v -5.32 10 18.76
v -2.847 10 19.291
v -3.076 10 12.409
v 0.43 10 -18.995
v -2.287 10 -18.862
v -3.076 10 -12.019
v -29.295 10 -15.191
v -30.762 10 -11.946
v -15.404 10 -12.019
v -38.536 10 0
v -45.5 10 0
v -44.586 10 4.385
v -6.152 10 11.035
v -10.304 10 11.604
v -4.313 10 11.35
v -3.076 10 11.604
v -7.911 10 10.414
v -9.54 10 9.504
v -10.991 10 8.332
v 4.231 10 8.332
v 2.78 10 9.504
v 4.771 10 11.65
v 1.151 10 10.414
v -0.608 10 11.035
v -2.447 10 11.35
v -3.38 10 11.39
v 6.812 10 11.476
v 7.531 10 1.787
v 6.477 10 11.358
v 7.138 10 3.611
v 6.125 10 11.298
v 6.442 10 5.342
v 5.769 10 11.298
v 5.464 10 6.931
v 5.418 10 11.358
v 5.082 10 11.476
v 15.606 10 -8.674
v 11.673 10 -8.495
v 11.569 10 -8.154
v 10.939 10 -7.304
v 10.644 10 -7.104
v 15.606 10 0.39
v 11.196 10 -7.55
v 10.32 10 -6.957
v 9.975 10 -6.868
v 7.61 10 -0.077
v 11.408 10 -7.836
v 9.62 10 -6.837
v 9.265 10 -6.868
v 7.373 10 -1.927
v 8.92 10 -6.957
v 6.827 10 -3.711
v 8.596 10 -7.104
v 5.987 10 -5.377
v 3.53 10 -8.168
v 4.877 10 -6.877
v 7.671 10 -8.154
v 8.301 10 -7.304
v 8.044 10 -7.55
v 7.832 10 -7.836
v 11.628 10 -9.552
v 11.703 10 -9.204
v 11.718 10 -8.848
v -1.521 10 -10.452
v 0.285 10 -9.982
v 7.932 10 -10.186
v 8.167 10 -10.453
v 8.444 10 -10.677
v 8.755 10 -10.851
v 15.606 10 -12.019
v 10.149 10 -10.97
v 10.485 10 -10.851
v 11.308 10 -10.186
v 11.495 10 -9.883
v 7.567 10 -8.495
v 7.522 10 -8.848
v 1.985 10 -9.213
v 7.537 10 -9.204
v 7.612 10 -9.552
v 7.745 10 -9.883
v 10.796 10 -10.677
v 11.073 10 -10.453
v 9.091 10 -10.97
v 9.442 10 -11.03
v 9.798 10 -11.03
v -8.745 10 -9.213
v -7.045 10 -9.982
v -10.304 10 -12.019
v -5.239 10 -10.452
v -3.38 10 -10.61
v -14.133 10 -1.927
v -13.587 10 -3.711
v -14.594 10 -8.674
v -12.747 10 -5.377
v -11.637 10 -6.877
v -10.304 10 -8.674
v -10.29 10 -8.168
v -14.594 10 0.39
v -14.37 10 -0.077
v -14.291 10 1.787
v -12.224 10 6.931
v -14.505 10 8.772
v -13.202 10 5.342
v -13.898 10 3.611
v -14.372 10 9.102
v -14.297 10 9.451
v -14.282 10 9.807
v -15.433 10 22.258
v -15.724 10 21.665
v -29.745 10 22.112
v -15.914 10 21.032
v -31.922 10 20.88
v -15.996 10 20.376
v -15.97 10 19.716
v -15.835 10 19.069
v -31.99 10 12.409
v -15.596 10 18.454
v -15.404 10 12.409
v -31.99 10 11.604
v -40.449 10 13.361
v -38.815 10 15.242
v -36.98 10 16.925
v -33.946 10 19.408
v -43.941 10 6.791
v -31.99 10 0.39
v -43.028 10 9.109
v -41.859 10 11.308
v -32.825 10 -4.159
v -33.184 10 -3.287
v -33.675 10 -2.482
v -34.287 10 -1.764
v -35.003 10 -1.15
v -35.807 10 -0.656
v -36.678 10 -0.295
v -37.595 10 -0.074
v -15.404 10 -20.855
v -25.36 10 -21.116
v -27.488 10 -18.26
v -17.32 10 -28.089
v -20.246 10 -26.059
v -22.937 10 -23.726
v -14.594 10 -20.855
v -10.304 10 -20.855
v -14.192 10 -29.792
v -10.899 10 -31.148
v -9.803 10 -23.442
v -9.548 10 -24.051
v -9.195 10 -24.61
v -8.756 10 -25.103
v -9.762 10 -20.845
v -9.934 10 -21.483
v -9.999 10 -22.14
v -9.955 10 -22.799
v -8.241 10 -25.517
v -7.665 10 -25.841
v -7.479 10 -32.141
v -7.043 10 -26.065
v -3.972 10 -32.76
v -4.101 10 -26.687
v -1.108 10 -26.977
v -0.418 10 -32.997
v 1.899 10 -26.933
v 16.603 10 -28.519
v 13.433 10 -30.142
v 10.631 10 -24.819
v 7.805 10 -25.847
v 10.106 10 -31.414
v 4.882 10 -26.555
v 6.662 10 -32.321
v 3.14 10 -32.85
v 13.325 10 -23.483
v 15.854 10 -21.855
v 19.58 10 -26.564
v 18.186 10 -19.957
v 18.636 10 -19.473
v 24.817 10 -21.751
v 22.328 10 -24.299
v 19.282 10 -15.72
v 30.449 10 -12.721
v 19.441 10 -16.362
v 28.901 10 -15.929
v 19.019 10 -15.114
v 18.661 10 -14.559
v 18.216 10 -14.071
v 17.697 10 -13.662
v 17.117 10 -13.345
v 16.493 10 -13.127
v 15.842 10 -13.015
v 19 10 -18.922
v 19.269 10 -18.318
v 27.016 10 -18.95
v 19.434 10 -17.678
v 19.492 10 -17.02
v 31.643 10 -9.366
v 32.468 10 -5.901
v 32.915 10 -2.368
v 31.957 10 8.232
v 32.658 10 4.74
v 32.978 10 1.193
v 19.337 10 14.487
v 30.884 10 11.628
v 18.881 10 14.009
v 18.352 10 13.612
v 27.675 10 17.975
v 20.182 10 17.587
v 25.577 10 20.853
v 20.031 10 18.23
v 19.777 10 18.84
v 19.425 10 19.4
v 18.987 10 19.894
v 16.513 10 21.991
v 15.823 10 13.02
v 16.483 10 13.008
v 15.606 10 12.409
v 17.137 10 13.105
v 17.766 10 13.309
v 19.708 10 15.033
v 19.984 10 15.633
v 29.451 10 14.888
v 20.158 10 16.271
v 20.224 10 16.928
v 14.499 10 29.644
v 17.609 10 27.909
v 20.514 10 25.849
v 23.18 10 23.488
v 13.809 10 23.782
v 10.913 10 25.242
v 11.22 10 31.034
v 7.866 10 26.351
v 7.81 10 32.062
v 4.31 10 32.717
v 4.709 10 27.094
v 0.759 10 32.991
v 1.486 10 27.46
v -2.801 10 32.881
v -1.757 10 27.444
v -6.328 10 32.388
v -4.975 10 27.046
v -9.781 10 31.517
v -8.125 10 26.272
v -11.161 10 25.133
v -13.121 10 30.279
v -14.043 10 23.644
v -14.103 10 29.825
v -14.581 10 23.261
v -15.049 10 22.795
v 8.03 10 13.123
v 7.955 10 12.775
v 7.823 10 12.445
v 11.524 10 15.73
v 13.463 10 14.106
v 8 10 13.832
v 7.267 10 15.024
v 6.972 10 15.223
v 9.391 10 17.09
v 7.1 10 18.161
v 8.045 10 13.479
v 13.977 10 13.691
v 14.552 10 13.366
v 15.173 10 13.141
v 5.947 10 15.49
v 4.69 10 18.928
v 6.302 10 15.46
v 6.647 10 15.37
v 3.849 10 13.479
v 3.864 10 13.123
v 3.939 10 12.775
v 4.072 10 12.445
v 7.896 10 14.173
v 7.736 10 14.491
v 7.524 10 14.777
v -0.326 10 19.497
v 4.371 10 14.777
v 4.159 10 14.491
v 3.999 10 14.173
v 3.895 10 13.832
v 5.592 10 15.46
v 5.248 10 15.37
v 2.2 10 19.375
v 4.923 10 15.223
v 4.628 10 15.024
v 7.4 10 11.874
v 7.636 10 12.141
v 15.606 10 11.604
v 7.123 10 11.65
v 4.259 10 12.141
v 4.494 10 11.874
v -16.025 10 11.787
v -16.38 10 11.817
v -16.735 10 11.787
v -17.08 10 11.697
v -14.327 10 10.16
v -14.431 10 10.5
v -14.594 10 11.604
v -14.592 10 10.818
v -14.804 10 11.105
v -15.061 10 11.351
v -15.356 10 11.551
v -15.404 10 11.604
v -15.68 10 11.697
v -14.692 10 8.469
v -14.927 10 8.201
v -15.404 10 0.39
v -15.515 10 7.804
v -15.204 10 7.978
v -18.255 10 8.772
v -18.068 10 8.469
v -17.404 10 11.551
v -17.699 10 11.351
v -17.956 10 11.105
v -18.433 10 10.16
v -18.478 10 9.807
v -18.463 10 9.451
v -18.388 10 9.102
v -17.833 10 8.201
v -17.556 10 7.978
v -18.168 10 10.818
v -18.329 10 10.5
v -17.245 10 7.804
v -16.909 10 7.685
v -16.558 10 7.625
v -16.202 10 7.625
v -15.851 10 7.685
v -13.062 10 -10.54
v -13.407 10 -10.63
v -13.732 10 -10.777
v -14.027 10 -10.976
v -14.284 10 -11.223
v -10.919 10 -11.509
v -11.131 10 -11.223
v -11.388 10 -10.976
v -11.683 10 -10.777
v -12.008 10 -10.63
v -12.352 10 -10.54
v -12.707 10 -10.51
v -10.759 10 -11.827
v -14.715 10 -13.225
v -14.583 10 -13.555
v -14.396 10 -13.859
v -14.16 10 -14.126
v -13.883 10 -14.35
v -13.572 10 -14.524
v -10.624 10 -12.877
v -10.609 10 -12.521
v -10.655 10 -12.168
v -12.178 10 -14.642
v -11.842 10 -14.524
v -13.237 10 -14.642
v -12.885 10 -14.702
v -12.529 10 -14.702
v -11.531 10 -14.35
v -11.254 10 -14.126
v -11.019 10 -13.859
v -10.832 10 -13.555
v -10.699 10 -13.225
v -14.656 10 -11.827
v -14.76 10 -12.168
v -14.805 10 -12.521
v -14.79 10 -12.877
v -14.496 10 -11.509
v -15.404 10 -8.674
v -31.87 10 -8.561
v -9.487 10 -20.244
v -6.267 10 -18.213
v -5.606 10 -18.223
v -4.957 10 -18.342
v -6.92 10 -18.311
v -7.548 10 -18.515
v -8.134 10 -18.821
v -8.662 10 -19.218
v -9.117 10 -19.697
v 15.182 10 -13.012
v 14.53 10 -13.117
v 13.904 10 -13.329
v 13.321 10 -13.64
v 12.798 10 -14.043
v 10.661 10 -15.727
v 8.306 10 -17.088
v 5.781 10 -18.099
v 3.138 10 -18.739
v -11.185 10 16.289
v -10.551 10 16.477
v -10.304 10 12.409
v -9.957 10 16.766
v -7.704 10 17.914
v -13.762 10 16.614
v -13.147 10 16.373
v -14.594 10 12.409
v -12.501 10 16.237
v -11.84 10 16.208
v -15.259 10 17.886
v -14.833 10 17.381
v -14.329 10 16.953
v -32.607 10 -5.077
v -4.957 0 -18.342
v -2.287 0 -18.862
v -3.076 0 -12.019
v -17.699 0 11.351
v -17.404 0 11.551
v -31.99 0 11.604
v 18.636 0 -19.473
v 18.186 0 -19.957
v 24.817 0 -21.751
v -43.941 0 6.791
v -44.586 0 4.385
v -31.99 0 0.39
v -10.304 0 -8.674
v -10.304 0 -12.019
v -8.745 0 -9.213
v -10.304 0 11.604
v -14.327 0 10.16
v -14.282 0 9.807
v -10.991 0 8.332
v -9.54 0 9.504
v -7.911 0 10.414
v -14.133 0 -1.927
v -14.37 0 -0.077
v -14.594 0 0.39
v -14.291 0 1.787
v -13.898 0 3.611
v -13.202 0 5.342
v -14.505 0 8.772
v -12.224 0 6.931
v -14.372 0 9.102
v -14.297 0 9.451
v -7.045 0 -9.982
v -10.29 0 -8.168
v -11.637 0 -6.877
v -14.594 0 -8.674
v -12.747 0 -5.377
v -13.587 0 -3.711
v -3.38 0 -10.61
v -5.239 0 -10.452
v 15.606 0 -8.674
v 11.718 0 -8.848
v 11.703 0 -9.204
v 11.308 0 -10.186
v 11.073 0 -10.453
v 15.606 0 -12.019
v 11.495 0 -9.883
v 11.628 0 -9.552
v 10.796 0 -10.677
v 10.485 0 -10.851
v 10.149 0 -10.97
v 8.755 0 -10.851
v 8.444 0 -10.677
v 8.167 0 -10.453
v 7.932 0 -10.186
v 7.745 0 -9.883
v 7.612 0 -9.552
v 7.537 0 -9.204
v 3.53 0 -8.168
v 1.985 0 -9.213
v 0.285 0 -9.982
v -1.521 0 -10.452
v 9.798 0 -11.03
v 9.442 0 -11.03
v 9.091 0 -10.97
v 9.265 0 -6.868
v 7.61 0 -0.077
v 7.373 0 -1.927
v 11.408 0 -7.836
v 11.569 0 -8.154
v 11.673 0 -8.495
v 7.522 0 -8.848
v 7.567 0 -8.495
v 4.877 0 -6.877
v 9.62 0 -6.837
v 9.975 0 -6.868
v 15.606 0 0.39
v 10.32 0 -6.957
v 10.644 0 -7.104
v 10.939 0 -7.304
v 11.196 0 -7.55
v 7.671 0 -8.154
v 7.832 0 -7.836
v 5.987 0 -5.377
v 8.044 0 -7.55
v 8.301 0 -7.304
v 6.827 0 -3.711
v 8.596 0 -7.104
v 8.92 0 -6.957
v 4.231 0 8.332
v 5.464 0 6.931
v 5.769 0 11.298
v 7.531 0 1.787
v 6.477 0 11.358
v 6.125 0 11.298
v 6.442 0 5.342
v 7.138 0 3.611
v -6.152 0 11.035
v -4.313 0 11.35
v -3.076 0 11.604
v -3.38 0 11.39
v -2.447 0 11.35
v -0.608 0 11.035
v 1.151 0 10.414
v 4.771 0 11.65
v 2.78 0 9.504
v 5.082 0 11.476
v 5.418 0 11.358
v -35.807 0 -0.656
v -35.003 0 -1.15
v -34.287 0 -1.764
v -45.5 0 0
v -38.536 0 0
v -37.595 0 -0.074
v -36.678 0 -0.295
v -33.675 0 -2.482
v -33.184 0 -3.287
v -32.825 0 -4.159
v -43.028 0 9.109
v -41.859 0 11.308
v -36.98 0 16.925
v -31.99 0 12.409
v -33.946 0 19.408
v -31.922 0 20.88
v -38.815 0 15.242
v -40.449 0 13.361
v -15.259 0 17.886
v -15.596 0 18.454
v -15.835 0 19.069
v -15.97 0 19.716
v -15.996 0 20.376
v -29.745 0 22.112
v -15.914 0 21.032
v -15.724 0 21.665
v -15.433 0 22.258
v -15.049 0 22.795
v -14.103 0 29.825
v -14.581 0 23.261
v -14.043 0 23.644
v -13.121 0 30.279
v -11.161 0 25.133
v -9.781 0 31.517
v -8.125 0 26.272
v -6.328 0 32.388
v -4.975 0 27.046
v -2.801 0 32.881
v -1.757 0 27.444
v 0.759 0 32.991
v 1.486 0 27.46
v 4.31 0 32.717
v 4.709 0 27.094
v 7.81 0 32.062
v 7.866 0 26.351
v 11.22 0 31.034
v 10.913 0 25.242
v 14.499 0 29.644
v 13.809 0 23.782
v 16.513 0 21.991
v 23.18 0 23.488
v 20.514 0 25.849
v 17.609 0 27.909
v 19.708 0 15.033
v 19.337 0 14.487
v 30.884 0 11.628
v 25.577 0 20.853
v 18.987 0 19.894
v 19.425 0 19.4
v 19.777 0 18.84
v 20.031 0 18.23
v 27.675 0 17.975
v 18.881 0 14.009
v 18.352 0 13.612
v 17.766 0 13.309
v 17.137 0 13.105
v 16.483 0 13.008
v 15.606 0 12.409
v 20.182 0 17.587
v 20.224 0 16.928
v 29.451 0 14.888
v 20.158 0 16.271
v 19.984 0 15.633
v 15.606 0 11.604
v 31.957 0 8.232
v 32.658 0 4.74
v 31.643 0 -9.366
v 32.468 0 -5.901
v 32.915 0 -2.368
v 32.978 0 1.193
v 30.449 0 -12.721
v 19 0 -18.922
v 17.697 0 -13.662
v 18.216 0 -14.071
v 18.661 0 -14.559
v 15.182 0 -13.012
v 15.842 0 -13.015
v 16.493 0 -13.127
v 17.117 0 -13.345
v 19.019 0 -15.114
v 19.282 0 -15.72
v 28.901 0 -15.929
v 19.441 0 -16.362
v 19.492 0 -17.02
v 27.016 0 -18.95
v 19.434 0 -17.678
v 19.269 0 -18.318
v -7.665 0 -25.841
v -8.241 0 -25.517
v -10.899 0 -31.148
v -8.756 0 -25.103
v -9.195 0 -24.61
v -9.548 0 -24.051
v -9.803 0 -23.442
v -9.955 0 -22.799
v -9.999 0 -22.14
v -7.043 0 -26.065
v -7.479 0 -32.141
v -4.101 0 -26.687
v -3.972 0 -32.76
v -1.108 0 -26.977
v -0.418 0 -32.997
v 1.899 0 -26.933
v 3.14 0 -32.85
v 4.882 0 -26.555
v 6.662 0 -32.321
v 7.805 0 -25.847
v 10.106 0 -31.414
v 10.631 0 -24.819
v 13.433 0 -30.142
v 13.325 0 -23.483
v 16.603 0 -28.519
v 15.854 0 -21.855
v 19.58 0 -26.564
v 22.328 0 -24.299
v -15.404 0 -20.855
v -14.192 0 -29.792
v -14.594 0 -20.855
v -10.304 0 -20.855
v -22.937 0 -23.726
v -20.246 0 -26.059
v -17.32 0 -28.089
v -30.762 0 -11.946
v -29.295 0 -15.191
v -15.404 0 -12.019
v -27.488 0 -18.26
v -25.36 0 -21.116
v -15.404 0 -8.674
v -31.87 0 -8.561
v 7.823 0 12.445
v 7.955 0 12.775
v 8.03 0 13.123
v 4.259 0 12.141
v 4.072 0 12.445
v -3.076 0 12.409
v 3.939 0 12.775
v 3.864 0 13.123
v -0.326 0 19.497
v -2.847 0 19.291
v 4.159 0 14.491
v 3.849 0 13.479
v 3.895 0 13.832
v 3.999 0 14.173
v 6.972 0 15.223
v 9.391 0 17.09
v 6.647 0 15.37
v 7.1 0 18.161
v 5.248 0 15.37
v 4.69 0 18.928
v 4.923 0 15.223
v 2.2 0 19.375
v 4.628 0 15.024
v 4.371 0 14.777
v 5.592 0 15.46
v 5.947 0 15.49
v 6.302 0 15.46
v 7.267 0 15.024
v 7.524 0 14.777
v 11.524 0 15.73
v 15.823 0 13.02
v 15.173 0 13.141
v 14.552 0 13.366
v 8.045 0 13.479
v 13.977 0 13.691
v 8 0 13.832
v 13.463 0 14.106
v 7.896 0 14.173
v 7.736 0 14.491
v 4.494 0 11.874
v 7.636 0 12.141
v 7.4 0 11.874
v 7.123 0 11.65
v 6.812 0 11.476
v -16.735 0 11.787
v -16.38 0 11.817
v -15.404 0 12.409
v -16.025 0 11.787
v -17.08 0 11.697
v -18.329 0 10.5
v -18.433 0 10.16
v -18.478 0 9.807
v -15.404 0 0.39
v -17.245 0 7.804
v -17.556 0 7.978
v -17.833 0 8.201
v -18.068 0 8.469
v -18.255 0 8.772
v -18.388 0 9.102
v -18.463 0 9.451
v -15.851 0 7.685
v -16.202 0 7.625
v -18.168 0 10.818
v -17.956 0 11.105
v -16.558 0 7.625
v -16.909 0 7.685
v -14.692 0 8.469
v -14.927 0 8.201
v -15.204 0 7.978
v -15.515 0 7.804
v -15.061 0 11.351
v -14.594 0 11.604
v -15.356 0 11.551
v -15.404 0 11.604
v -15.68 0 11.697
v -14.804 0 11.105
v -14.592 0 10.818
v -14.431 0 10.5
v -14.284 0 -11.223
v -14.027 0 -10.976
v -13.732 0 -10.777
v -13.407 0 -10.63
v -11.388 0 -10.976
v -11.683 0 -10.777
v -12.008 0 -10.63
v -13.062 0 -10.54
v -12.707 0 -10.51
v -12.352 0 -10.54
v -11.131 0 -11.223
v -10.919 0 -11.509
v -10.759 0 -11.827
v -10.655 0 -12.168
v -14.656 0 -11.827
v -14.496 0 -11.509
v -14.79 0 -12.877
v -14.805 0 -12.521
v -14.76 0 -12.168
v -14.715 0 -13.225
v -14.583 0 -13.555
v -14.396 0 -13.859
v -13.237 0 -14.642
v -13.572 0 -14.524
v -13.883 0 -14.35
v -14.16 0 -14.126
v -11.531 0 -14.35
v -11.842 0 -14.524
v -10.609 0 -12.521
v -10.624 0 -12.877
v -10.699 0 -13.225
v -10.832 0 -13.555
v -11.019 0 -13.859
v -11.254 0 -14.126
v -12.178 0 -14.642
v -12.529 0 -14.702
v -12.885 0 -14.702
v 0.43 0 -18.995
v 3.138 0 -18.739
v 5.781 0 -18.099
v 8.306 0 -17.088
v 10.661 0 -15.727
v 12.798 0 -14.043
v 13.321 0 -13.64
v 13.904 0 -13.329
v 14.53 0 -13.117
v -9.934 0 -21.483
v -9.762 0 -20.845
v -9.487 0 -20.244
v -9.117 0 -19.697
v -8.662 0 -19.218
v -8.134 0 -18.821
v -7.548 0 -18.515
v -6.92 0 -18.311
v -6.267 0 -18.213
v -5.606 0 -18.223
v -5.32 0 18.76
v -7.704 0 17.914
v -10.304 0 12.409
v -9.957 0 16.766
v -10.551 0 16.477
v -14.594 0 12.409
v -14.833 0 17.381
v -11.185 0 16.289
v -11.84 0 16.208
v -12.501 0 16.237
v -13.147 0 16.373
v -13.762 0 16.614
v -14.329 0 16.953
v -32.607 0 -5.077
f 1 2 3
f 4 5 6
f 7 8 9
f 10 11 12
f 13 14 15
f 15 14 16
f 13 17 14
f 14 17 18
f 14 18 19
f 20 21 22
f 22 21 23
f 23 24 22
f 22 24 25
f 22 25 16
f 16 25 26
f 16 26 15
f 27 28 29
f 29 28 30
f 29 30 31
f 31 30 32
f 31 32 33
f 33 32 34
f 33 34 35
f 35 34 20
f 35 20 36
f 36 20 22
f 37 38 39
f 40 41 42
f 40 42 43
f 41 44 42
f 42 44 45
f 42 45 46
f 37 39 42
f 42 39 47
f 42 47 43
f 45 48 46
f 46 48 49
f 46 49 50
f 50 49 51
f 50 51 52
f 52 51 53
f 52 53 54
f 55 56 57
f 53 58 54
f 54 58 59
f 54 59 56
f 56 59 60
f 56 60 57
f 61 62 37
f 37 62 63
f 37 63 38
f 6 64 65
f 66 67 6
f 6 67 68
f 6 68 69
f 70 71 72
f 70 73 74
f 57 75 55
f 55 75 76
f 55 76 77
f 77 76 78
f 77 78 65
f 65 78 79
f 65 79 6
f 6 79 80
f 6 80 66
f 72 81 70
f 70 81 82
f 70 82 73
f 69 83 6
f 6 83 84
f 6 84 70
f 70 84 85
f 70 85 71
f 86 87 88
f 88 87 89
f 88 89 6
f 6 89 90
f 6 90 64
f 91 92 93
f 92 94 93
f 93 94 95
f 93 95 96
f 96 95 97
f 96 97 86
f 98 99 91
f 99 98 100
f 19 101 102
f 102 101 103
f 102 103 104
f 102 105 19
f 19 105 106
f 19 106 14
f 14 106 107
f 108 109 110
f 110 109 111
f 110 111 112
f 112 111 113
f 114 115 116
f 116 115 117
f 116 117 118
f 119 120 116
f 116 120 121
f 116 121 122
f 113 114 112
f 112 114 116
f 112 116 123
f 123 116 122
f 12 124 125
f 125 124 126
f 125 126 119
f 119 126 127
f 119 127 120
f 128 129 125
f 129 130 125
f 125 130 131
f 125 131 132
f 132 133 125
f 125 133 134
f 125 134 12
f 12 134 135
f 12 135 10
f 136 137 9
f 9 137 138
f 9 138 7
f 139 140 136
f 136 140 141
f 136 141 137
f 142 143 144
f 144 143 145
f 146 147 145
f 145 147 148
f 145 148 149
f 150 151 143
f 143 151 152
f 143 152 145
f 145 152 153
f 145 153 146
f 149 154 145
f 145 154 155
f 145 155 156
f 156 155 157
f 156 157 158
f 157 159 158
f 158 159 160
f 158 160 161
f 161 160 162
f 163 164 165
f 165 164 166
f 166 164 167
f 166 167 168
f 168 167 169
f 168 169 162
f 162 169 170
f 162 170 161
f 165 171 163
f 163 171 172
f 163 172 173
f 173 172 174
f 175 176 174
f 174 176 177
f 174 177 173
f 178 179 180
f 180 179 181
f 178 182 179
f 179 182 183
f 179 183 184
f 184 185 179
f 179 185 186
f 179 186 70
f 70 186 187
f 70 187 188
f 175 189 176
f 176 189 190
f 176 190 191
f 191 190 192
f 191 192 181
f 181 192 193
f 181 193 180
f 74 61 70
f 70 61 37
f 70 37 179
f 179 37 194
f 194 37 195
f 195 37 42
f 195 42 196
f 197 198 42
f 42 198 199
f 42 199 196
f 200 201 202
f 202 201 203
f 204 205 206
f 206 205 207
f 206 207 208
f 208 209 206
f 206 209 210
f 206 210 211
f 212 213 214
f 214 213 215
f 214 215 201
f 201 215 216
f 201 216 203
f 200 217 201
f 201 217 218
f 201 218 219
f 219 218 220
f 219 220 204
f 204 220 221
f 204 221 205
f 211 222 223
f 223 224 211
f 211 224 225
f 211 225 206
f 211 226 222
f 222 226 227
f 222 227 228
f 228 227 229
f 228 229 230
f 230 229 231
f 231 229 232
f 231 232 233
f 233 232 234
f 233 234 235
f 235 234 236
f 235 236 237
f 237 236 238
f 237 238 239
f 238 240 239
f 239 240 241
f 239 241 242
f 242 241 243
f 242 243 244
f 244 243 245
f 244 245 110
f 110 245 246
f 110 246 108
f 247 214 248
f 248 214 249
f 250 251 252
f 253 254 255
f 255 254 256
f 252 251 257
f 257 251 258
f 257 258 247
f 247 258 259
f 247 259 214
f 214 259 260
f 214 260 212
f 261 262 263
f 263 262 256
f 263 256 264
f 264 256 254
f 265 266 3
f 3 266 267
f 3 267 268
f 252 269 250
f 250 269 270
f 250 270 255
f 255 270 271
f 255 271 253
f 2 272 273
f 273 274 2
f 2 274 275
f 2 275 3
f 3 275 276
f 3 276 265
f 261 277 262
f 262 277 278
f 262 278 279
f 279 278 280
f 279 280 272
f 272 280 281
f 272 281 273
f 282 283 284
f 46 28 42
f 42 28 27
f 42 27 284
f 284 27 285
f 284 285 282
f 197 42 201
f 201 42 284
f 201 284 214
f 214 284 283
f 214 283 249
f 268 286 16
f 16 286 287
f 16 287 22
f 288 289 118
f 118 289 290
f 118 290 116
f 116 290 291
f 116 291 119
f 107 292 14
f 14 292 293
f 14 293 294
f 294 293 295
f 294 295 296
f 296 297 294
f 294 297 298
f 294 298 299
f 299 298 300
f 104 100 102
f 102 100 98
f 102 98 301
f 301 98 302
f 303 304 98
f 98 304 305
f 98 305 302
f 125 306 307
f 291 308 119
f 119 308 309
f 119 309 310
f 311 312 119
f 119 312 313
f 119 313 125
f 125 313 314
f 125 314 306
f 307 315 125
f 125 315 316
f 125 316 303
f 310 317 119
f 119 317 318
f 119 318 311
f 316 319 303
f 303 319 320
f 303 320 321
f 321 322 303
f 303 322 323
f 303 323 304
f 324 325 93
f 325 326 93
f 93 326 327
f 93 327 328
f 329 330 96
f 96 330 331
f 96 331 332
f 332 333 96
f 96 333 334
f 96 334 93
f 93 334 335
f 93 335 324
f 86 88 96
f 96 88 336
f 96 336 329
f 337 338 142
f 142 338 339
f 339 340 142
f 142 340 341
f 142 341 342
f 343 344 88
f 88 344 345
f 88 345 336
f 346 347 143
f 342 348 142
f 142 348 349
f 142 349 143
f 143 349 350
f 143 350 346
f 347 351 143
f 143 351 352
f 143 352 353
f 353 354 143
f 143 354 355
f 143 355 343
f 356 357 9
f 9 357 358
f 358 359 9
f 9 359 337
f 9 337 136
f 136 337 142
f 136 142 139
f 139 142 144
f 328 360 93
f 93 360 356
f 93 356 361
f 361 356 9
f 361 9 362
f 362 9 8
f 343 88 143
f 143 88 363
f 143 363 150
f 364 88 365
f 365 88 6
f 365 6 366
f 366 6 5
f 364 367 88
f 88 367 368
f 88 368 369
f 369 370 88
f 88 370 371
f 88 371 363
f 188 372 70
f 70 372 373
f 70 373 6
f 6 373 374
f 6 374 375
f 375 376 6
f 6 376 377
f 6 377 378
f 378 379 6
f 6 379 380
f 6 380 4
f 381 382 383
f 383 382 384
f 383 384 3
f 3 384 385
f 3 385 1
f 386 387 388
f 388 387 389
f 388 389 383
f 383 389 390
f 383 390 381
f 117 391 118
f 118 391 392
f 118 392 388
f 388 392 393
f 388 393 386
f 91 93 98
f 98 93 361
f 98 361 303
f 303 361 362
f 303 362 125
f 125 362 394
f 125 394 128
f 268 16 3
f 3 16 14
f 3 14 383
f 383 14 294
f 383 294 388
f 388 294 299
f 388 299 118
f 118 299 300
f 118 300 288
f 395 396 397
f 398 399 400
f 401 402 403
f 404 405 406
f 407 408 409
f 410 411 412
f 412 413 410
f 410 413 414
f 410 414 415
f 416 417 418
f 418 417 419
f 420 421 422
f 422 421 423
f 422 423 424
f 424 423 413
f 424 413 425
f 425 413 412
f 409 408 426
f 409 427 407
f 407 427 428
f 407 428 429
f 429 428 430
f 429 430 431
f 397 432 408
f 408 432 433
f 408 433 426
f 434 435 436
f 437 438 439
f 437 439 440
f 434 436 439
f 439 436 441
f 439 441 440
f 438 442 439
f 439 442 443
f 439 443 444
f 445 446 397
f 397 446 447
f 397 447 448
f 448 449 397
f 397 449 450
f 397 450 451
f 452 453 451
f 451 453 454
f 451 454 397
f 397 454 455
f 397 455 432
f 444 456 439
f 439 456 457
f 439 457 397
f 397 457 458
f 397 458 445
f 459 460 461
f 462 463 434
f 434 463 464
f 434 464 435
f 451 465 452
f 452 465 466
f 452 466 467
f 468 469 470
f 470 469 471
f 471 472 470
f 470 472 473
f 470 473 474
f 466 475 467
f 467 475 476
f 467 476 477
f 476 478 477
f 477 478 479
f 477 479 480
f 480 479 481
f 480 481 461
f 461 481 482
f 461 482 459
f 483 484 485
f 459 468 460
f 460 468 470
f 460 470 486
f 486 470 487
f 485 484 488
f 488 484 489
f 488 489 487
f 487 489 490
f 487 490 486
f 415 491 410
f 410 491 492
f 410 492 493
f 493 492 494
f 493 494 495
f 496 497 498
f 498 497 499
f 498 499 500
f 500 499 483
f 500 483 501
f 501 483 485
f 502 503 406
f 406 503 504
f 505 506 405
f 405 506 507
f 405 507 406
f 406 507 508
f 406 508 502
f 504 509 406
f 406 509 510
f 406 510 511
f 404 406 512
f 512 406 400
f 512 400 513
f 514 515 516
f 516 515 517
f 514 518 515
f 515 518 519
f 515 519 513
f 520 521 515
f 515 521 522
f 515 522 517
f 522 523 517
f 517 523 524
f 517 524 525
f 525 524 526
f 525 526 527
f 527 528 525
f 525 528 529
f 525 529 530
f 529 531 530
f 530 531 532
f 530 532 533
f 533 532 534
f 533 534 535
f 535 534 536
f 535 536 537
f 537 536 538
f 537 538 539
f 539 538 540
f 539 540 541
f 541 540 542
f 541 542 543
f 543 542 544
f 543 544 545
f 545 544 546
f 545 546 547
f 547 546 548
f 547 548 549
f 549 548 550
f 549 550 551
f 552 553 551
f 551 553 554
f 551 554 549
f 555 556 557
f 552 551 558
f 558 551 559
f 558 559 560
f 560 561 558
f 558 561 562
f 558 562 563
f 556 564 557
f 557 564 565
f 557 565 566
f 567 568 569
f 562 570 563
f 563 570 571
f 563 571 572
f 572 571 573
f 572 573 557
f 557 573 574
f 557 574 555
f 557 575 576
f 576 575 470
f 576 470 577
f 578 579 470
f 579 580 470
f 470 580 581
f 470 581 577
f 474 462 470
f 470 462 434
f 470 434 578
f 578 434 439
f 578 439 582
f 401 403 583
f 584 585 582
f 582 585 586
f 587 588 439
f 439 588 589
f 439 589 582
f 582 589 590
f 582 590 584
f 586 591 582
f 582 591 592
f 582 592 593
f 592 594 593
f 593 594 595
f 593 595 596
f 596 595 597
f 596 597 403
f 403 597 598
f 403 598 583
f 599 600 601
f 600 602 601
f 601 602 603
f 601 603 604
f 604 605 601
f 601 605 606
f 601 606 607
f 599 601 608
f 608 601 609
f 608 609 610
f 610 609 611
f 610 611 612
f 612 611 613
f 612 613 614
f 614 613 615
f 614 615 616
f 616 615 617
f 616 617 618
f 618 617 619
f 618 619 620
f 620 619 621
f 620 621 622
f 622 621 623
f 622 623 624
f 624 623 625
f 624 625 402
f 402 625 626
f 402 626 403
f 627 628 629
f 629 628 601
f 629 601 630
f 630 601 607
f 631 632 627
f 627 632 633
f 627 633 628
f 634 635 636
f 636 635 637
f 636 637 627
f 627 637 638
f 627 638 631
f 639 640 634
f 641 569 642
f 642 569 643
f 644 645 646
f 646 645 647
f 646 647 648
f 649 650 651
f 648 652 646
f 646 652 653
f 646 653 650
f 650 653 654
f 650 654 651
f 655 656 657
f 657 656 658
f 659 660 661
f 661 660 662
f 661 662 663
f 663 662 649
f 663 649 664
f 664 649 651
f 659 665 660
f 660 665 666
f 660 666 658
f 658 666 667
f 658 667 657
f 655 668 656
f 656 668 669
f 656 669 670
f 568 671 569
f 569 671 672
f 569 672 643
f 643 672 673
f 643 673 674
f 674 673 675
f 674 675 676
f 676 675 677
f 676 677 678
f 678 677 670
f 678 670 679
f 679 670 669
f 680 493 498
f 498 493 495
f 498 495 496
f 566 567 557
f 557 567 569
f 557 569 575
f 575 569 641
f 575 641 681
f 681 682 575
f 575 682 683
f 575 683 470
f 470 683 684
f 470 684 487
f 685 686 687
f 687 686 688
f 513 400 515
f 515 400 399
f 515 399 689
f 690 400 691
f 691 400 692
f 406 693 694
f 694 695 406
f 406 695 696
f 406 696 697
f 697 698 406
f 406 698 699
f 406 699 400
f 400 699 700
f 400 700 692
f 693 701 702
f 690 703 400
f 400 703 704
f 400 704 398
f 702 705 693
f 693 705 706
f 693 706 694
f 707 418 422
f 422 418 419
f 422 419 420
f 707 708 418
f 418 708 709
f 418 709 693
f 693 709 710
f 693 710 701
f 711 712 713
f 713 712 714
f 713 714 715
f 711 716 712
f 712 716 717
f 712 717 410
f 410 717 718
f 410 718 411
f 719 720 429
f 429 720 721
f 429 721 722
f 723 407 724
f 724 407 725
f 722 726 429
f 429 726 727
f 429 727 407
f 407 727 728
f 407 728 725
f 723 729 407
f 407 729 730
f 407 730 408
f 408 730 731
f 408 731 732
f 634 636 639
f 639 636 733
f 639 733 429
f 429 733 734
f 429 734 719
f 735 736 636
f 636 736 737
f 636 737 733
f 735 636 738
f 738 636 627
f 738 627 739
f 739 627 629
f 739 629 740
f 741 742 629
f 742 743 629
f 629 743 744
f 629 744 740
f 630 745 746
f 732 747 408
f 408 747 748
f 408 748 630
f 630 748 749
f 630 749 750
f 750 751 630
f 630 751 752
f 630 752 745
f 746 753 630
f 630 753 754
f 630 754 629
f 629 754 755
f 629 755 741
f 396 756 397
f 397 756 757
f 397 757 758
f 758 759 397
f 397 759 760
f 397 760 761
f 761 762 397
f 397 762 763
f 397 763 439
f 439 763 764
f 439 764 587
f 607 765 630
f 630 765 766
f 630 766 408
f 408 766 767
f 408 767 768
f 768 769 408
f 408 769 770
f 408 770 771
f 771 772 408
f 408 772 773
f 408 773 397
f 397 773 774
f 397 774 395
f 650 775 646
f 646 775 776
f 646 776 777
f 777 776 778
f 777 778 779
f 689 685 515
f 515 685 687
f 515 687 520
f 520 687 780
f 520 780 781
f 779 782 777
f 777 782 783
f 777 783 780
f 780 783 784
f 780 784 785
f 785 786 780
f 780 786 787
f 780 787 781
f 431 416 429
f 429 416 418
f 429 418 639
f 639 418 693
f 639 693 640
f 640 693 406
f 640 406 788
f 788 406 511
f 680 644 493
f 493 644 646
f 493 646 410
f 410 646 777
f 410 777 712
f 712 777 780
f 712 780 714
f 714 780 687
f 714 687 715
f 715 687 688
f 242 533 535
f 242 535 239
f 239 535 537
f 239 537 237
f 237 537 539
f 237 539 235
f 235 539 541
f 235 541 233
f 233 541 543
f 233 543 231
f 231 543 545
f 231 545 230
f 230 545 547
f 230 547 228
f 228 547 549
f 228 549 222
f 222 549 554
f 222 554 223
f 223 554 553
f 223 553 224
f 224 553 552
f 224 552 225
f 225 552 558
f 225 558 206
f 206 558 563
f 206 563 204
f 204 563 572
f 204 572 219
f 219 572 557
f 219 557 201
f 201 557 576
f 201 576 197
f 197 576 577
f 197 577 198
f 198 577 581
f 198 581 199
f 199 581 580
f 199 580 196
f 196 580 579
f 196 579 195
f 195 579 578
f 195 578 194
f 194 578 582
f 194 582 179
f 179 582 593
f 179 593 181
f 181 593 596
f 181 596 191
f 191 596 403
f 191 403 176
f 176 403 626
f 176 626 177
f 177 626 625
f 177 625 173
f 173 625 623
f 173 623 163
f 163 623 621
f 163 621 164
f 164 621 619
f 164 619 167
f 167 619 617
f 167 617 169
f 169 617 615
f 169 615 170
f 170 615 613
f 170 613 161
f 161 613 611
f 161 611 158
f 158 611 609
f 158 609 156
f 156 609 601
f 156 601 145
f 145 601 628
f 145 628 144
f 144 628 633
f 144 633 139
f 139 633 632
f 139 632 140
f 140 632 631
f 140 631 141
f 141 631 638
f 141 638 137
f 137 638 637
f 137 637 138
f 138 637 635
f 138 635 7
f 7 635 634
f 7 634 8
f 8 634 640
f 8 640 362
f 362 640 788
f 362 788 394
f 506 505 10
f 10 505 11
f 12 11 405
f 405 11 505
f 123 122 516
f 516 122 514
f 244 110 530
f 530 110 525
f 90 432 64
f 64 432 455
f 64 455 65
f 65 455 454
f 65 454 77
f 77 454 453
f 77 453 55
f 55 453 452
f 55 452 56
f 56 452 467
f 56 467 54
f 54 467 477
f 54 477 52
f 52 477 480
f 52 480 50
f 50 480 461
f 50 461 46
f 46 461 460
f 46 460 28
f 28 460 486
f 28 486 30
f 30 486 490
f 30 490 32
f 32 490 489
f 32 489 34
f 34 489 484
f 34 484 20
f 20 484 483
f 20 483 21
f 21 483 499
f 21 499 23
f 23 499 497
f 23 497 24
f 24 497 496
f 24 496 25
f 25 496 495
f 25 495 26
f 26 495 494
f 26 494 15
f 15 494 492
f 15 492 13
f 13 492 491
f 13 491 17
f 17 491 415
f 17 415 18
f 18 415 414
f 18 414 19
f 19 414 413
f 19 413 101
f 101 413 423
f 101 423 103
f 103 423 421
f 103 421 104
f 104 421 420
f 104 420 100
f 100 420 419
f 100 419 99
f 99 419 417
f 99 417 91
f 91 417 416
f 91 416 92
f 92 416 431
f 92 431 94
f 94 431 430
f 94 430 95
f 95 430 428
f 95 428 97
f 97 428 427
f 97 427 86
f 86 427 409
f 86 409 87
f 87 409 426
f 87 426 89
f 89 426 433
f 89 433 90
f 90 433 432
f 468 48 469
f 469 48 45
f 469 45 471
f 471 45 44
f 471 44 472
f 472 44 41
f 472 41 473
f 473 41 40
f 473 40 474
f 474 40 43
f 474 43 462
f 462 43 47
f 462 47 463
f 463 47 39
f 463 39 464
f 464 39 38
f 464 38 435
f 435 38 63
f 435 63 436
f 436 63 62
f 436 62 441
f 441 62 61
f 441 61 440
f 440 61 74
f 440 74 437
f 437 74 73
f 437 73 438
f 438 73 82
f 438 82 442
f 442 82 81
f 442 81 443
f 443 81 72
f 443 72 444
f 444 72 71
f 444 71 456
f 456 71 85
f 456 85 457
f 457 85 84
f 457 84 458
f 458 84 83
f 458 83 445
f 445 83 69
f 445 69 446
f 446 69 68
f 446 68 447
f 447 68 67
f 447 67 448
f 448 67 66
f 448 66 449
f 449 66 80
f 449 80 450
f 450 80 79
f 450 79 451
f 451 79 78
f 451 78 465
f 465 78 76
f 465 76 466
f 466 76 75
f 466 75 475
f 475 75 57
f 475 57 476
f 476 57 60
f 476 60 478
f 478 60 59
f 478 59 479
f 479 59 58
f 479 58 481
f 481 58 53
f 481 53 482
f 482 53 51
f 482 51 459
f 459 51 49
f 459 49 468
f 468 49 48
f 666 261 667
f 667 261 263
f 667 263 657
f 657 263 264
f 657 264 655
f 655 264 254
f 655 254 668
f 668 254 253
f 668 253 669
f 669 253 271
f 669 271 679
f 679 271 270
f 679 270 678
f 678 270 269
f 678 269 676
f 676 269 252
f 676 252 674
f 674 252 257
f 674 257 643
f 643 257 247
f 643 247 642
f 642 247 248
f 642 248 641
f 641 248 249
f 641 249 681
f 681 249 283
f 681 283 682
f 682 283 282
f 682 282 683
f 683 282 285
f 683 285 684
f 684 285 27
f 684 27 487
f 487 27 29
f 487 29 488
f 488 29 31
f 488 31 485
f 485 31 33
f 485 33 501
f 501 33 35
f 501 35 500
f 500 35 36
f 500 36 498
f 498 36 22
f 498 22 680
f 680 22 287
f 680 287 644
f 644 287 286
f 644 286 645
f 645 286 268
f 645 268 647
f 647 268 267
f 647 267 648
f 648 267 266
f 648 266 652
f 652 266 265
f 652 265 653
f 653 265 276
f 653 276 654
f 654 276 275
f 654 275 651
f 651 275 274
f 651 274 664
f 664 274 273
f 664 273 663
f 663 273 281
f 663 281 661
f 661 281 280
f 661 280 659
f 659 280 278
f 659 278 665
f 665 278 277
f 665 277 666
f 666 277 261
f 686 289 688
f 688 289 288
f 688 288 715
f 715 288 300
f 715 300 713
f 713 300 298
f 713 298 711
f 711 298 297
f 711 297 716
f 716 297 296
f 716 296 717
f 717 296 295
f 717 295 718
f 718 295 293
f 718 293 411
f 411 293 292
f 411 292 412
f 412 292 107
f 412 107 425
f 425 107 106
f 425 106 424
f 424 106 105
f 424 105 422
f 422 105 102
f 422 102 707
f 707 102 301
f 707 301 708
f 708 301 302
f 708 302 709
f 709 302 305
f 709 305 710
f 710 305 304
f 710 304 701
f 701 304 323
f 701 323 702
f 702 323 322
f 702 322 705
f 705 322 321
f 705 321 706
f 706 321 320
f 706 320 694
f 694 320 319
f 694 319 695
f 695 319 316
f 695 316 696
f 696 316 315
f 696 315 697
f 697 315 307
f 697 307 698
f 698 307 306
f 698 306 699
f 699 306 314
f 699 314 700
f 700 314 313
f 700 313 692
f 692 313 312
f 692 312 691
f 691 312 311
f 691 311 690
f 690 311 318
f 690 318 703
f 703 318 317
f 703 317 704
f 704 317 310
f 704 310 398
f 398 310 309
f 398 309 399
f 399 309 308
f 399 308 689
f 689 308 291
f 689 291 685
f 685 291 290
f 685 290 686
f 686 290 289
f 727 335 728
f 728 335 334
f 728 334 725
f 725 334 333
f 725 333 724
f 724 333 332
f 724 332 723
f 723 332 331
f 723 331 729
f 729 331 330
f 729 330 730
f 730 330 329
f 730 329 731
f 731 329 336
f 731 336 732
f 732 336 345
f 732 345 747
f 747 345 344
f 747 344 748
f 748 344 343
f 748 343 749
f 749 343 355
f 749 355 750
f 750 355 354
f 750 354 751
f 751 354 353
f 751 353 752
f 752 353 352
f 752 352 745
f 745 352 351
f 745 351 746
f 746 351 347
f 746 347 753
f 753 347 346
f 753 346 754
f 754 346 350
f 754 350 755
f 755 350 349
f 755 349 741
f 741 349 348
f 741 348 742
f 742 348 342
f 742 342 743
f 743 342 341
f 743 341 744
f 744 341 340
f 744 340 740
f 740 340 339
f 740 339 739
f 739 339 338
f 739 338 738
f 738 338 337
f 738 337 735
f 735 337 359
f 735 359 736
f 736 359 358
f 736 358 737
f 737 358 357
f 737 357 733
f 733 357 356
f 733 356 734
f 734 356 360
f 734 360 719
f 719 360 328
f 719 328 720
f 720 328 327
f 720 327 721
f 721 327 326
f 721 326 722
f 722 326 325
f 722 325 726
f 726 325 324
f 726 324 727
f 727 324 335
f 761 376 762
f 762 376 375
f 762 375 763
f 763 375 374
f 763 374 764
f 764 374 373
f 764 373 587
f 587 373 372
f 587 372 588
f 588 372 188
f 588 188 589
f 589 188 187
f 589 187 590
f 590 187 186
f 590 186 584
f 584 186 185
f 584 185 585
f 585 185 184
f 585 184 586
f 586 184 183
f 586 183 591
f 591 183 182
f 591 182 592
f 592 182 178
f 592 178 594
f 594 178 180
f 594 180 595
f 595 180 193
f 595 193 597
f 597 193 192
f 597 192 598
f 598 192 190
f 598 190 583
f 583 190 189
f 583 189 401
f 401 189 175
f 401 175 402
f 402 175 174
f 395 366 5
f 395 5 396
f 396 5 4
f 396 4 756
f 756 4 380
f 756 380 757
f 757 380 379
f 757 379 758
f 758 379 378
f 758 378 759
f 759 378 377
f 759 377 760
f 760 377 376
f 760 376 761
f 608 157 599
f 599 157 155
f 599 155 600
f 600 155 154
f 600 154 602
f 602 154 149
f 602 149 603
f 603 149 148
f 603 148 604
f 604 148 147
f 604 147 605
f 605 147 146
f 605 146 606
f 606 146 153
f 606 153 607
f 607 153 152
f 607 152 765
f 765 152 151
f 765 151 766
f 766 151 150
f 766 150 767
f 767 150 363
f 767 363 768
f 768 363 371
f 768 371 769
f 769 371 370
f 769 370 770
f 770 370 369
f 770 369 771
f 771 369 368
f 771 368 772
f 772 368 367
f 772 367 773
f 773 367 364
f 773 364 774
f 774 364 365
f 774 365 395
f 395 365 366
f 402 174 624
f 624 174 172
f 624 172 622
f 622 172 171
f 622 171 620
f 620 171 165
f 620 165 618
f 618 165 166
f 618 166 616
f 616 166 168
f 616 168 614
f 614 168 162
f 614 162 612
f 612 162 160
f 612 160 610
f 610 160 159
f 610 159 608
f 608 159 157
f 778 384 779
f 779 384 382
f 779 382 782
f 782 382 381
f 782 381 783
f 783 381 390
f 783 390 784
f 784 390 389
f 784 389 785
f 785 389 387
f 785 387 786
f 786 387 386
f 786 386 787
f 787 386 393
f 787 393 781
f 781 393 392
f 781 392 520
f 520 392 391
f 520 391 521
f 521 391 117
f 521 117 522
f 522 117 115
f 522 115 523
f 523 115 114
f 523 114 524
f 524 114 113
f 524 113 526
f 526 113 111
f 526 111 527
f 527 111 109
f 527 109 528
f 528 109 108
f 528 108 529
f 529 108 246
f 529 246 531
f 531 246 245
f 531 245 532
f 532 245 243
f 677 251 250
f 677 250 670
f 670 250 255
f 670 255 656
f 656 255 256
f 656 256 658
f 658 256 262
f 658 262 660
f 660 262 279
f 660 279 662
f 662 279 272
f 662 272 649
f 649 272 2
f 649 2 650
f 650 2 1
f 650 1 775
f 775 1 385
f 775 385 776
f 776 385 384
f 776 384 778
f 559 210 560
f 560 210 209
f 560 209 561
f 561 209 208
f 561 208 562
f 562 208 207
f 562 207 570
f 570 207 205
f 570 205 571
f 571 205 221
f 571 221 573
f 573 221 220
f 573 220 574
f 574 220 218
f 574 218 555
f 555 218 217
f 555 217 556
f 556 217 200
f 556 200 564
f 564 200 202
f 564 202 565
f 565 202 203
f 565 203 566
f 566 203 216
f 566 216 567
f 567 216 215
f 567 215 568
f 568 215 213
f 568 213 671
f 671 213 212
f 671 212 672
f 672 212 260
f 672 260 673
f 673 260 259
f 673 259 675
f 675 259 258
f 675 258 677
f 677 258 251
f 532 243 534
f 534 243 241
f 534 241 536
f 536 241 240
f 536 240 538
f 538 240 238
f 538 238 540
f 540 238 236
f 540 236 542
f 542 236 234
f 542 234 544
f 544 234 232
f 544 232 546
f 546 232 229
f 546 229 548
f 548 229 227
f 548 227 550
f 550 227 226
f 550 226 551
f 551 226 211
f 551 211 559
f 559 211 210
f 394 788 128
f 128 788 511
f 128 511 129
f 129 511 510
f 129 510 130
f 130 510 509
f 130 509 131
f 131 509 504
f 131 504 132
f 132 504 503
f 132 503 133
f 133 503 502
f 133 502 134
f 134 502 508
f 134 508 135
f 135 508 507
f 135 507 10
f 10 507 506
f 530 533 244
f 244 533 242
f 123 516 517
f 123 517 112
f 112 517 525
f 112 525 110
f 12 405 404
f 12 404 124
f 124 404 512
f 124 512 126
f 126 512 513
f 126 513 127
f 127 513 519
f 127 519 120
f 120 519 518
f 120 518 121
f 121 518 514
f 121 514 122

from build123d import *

# Parameters (mm, degrees)
SKETCH1_R           = 11
BOSS_EXTRUDE1_DEPTH = 10
SKETCH2_R           = 2.1
CUT_EXTRUDE1_DEPTH  = 58.089841478
CUT_EXTRUDE3_DEPTH  = 10
FILLET1_R           = 6
FILLET2_R           = 22


with BuildPart() as part:
    # Sketch1 → Boss-Extrude1 (new body)
    with BuildSketch(Plane(origin=(0, 0, 0), x_dir=(1, 0, 0), z_dir=(0, 1, 0))):
        with BuildLine():
            Line((-33, 0), (-45.5, 0))
            Line((-45.5, 0), (-43, -12))
            Line((-43, -12), (-32, -21))
            Line((-32, -21), (-13.747727085, -30))
            ThreePointArc((-13.747727085, -30), (27.772963416, 17.823089045), (-33, 0))
        make_face()
        with Locations(Location((-3.38, -0.39, 0), (0, 0, 270))):
            Circle(SKETCH1_R, mode=Mode.SUBTRACT)
    extrude(amount=BOSS_EXTRUDE1_DEPTH)

    # Sketch2 → Cut-Extrude1 (cut, through all)
    with BuildSketch(Plane(origin=(0, 10, 0), x_dir=(1, 0, 0), z_dir=(0, 1, 0))):
        with Locations(Location((9.62, 8.937379053, 0), (0, 0, 270))):
            Circle(SKETCH2_R)
        with Locations(Location((5.947379053, -13.39, 0), (0, 0, 270))):
            Circle(SKETCH2_R)
        with Locations(Location((-16.38, -9.717379053, 0), (0, 0, 270))):
            Circle(SKETCH2_R)
        with Locations(Location((-12.707379053, 12.61, 0), (0, 0, 270))):
            Circle(SKETCH2_R)
    extrude(amount=-CUT_EXTRUDE1_DEPTH, mode=Mode.SUBTRACT)

    # Sketch4 → Cut-Extrude3 (cut)
    with BuildSketch(Plane(origin=(0, 10, 0), x_dir=(1, 0, 0), z_dir=(0, 1, 0))):
        with BuildLine():
            ThreePointArc((-14.042553191, -23.644379879), (3.102926355, -27.324381933), (18.986679589, -19.893617021))
            ThreePointArc((18.986679589, -19.893617021), (19.118597761, -14.238301151), (13.46328189, -14.106382979))
            ThreePointArc((13.46328189, -14.106382979), (2.20025687, -19.375470825), (-9.957446809, -16.766014823))
            ThreePointArc((-9.957446809, -16.766014823), (-15.439182528, -18.16264416), (-14.042553191, -23.644379879))
        make_face()
        with BuildLine():
            ThreePointArc((18.186182669, 19.956521739), (6.35363251, 26.241786409), (-7.043478261, 26.065099539))
            ThreePointArc((-7.043478261, 26.065099539), (-9.861496228, 21.16012505), (-4.956521739, 18.342107083))
            ThreePointArc((-4.956521739, 18.342107083), (4.471074729, 18.466442288), (12.797684101, 14.043478261))
            ThreePointArc((12.797684101, 14.043478261), (18.448455124, 14.305750716), (18.186182669, 19.956521739))
        make_face()
    extrude(amount=-CUT_EXTRUDE3_DEPTH, mode=Mode.SUBTRACT)

    # Fillet1
    fillet1_edges = [part.edges().sort_by_distance(p)[0] for p in [
        (-33, 5, 0),
    ]]
    fillet(fillet1_edges, radius=FILLET1_R)

    # Fillet2
    # the kernel refuses this fillet: 22 mm, written as the material it takes off along each edge
    with BuildSketch(Plane(origin=(-13.747727085, -1.715684323, 30), x_dir=(0.913373582201966, 0, 0.4071224623323412), z_dir=(0, 1, 0))) as fillet2_piece_1:
        with BuildLine():
            CenterArc((0.45751582, 21.998810646), FILLET2_R, 267.776788076, 2.81898915)
            Line((-0.39592208, 0.015370429), (0, 0))
            ThreePointArc((0, 0), (0.343136865, -0.001784032), (0.686273729, 0))
        make_face()
    extrude(amount=13.431368647, mode=Mode.SUBTRACT)
    with BuildSketch(Plane(origin=(-32, -6.286877036, 21), x_dir=(-0.7739572992033206, 0, -0.6332377902572631), z_dir=(0, 1, 0))) as fillet2_piece_2:
        with BuildLine():
            CenterArc((FILLET2_R * 0.114306855208, -FILLET2_R), FILLET2_R, 90, 13.041994835)
            Line((-FILLET2_R * 0.111358301376, -FILLET2_R * 0.0257950743792), (0, 0))
            Line((0, 0), (FILLET2_R * 0.114306855208, 0))
        make_face()
    extrude(amount=22.573754073, mode=Mode.SUBTRACT)
    with BuildSketch(Plane(origin=(-43, -19.445362474, 12), x_dir=(-0.20395425411200122, 0, -0.978980419737605), z_dir=(0, 1, 0))) as fillet2_piece_3:
        with BuildLine():
            CenterArc((FILLET2_R * 0.353552044976, -FILLET2_R), FILLET2_R, 90, 38.942304205)
            Line((-FILLET2_R * 0.27498545547, -FILLET2_R * 0.222220718627), (0, 0))
            Line((0, 0), (FILLET2_R * 0.353552044976, 0))
        make_face()
    extrude(amount=48.890724947, mode=Mode.SUBTRACT)


solid = part.part
